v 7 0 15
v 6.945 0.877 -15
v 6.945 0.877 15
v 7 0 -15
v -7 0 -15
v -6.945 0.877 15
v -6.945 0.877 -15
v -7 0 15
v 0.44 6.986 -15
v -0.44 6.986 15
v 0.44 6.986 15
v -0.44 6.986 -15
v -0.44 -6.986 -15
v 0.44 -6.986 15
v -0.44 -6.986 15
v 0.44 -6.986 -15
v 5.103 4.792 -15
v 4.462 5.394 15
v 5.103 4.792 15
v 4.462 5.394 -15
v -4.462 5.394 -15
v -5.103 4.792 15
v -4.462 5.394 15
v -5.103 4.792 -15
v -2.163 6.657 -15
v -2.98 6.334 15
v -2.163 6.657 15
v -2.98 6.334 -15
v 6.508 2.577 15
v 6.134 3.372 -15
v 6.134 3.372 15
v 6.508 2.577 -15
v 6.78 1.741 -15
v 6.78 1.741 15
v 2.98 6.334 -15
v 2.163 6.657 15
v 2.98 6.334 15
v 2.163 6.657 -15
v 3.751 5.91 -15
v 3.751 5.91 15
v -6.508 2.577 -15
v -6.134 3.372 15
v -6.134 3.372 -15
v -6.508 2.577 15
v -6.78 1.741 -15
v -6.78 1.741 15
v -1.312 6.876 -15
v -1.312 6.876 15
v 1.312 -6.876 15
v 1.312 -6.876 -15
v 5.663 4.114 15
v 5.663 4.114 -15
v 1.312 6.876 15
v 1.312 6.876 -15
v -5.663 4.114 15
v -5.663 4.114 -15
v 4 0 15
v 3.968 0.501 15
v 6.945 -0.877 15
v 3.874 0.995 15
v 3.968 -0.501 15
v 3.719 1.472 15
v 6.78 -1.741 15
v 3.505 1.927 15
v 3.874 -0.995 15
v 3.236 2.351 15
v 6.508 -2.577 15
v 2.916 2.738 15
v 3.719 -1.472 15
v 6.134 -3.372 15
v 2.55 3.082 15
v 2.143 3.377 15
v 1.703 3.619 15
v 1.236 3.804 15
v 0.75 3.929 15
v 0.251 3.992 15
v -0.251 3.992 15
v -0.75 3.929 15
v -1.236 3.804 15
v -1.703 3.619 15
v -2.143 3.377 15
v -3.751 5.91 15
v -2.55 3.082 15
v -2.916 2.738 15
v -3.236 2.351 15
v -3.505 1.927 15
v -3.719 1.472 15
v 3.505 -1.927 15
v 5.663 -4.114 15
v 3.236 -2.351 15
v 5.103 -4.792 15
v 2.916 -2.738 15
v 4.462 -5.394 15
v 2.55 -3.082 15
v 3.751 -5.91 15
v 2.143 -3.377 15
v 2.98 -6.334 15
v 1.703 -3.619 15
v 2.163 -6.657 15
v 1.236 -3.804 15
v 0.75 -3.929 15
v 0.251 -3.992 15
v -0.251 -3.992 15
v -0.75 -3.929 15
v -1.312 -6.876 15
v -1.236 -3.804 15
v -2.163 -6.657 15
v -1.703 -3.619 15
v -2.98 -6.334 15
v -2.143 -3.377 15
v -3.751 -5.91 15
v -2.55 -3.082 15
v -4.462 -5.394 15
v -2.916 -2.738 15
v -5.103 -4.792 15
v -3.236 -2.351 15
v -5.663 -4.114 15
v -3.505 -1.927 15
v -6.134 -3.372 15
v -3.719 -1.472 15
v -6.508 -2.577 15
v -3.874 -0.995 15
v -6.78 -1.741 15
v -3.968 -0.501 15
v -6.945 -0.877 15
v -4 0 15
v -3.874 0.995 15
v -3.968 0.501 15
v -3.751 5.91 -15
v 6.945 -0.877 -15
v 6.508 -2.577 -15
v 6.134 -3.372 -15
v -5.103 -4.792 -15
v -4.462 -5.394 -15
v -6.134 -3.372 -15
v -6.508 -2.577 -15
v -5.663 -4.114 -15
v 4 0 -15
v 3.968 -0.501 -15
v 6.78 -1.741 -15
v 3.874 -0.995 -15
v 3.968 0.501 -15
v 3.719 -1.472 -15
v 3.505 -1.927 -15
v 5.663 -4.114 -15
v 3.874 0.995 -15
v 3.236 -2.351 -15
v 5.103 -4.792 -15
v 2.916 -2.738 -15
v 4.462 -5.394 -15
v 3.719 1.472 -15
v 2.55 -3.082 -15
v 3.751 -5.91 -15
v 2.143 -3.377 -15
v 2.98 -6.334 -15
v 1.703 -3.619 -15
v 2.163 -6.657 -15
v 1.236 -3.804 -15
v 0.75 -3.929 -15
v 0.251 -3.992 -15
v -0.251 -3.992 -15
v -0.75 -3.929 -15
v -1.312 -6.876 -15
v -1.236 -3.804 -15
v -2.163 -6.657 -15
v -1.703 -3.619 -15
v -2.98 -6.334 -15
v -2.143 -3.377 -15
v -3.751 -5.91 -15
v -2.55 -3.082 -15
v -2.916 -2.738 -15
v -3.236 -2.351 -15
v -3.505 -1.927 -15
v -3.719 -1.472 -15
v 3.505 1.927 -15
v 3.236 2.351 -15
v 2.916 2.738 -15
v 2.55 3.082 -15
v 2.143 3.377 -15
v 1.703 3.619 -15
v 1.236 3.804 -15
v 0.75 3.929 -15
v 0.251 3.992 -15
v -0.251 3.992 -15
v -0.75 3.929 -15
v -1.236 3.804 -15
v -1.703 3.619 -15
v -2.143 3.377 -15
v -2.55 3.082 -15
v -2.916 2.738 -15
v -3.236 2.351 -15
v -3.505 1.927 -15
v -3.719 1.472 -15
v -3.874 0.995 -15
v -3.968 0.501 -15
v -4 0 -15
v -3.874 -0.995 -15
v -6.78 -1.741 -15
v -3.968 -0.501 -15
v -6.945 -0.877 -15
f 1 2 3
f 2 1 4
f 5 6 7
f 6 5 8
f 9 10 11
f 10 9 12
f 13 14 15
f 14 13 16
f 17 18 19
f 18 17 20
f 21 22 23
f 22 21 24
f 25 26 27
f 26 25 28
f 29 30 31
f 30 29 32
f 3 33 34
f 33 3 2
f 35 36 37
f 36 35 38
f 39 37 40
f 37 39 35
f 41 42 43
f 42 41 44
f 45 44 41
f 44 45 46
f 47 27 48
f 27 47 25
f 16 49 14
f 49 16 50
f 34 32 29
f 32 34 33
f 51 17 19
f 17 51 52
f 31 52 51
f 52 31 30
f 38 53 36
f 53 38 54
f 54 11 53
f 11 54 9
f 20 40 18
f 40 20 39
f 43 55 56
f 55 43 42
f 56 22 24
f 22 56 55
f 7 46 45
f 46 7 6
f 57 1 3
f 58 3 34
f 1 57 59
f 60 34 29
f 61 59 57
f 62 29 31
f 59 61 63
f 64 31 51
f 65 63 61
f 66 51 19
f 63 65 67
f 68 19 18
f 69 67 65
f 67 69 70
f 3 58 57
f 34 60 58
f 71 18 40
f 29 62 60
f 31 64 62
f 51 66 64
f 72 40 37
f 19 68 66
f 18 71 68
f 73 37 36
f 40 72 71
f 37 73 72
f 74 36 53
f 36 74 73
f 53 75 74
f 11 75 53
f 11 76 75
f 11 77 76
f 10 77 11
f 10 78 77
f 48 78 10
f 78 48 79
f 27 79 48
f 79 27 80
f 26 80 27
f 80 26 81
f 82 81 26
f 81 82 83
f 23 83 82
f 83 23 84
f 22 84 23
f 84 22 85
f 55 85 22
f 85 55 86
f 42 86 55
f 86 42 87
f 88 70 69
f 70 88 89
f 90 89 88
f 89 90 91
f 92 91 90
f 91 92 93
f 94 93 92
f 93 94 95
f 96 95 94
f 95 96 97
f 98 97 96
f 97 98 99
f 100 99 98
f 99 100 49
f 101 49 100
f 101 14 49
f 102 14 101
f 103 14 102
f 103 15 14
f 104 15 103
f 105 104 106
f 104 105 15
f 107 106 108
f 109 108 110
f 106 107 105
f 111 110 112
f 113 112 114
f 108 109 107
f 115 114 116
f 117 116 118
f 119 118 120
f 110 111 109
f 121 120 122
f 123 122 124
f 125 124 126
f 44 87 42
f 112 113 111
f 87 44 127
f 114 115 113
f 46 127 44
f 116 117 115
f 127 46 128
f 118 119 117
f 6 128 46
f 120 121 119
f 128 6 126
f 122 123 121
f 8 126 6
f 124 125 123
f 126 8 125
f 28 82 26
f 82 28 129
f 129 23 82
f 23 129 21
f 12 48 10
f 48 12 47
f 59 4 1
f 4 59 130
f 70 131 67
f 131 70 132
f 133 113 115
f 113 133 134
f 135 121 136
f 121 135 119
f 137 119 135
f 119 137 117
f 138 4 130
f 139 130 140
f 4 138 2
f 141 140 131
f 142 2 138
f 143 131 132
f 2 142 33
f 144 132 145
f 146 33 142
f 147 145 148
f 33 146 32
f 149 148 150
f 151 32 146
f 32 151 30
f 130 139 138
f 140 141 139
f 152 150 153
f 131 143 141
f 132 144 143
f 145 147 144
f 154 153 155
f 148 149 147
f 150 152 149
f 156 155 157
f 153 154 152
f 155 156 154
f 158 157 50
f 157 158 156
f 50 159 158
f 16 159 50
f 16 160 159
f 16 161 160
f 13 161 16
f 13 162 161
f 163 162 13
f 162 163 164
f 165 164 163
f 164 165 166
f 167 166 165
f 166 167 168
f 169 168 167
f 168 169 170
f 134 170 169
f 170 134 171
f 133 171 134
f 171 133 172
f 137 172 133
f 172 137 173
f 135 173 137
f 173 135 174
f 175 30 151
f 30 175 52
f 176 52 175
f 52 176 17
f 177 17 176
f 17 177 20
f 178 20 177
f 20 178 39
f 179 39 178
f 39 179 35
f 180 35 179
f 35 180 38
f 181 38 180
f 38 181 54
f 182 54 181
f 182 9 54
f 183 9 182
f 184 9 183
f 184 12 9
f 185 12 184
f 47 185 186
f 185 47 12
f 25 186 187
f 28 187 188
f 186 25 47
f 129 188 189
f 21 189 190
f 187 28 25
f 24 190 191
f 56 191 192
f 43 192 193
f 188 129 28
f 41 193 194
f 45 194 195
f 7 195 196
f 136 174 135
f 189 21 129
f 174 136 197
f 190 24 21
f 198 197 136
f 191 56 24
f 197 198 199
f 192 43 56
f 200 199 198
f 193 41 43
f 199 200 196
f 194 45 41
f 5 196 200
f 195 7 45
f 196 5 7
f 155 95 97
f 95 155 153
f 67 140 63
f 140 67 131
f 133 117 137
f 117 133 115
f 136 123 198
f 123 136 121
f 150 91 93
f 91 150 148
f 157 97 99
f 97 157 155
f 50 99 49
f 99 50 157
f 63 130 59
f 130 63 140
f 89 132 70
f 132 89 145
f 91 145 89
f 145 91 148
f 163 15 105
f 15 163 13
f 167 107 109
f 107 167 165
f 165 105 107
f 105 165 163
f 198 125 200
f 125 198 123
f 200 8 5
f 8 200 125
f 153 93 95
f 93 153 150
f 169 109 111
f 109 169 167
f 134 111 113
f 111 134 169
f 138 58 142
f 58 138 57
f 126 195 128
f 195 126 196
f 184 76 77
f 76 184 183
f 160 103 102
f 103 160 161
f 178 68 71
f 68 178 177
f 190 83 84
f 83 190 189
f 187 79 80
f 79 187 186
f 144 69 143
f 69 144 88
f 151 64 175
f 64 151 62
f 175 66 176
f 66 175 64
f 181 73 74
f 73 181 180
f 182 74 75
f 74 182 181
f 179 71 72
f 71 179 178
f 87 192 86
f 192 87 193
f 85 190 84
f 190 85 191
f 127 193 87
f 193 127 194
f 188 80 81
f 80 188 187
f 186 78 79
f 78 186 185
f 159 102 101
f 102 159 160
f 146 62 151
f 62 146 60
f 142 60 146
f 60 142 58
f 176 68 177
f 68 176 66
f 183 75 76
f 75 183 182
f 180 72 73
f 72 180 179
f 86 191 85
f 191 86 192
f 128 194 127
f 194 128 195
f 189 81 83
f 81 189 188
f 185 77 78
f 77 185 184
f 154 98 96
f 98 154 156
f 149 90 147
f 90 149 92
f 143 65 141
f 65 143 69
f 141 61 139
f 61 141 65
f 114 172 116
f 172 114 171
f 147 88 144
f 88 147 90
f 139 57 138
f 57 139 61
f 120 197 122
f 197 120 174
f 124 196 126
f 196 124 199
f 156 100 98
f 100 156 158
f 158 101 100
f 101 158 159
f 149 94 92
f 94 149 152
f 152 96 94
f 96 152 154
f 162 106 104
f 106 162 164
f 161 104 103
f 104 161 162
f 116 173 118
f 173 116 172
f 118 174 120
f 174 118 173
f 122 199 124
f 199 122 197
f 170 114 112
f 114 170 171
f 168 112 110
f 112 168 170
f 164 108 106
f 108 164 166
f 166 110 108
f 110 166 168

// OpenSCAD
$fn = 50;


difference() {
	union() {
		translate(v = [0, 0, -15.0000000000]) {
			cylinder(h = 30, r = 7.0000000000);
		}
	}
	union() {
		translate(v = [0, 0, -100.0000000000]) {
			cylinder(h = 200, r = 4);
		}
	}
}
